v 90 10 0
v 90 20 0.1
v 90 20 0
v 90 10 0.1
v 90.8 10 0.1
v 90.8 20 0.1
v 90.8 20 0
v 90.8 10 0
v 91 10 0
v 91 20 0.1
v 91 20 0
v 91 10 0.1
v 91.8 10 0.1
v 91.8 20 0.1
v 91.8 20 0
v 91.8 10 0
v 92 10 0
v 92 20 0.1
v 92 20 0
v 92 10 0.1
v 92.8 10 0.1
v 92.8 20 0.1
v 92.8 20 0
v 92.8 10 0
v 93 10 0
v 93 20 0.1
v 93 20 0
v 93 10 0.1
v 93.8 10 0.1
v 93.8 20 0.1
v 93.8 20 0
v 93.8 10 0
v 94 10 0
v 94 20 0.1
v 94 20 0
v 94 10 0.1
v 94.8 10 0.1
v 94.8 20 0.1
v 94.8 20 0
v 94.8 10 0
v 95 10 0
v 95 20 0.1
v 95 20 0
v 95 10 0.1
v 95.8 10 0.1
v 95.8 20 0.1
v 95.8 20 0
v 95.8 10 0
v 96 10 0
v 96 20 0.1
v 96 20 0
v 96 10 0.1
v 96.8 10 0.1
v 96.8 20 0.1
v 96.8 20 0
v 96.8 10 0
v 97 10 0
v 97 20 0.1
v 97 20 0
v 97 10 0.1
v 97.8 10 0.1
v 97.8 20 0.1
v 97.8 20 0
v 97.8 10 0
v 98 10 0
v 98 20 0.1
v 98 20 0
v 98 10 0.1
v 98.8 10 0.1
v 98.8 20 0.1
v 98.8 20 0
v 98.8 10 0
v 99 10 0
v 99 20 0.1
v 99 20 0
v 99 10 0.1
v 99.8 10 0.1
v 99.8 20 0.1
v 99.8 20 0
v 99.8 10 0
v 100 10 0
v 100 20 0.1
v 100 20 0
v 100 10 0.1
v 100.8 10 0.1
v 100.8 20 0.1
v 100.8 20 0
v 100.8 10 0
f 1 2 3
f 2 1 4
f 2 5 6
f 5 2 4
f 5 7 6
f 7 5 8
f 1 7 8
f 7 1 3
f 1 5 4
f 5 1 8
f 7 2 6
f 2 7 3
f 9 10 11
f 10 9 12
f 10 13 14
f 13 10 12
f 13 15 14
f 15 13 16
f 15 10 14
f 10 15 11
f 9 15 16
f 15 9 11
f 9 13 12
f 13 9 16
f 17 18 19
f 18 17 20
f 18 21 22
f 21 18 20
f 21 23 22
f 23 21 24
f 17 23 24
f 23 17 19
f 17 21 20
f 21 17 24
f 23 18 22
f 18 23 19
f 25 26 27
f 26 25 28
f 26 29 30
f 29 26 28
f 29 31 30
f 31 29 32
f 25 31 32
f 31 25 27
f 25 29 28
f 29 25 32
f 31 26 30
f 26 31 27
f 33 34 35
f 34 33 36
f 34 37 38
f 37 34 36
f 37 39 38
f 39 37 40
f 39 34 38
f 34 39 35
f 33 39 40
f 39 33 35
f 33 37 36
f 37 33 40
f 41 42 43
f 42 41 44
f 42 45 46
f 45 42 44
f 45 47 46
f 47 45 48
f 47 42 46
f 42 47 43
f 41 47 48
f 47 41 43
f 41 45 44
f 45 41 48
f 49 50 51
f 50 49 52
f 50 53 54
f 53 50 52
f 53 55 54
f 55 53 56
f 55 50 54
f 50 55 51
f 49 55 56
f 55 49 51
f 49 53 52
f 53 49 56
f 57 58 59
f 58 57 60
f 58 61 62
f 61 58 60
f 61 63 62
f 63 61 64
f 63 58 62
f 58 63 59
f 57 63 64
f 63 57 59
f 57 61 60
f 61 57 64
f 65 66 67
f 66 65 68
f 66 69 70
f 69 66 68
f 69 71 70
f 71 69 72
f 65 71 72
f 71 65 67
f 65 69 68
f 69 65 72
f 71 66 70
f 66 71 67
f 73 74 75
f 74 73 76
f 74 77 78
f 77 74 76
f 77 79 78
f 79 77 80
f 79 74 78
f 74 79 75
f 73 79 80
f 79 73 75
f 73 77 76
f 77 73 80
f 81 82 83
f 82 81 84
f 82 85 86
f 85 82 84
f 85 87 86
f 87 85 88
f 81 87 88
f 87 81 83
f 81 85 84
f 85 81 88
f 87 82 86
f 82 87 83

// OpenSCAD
translate([10+80,10+0,0])
        for (i = [0 : 10]){
            translate([i,0,0])
                cube(size = [0.8,10,0.1]);
    }
